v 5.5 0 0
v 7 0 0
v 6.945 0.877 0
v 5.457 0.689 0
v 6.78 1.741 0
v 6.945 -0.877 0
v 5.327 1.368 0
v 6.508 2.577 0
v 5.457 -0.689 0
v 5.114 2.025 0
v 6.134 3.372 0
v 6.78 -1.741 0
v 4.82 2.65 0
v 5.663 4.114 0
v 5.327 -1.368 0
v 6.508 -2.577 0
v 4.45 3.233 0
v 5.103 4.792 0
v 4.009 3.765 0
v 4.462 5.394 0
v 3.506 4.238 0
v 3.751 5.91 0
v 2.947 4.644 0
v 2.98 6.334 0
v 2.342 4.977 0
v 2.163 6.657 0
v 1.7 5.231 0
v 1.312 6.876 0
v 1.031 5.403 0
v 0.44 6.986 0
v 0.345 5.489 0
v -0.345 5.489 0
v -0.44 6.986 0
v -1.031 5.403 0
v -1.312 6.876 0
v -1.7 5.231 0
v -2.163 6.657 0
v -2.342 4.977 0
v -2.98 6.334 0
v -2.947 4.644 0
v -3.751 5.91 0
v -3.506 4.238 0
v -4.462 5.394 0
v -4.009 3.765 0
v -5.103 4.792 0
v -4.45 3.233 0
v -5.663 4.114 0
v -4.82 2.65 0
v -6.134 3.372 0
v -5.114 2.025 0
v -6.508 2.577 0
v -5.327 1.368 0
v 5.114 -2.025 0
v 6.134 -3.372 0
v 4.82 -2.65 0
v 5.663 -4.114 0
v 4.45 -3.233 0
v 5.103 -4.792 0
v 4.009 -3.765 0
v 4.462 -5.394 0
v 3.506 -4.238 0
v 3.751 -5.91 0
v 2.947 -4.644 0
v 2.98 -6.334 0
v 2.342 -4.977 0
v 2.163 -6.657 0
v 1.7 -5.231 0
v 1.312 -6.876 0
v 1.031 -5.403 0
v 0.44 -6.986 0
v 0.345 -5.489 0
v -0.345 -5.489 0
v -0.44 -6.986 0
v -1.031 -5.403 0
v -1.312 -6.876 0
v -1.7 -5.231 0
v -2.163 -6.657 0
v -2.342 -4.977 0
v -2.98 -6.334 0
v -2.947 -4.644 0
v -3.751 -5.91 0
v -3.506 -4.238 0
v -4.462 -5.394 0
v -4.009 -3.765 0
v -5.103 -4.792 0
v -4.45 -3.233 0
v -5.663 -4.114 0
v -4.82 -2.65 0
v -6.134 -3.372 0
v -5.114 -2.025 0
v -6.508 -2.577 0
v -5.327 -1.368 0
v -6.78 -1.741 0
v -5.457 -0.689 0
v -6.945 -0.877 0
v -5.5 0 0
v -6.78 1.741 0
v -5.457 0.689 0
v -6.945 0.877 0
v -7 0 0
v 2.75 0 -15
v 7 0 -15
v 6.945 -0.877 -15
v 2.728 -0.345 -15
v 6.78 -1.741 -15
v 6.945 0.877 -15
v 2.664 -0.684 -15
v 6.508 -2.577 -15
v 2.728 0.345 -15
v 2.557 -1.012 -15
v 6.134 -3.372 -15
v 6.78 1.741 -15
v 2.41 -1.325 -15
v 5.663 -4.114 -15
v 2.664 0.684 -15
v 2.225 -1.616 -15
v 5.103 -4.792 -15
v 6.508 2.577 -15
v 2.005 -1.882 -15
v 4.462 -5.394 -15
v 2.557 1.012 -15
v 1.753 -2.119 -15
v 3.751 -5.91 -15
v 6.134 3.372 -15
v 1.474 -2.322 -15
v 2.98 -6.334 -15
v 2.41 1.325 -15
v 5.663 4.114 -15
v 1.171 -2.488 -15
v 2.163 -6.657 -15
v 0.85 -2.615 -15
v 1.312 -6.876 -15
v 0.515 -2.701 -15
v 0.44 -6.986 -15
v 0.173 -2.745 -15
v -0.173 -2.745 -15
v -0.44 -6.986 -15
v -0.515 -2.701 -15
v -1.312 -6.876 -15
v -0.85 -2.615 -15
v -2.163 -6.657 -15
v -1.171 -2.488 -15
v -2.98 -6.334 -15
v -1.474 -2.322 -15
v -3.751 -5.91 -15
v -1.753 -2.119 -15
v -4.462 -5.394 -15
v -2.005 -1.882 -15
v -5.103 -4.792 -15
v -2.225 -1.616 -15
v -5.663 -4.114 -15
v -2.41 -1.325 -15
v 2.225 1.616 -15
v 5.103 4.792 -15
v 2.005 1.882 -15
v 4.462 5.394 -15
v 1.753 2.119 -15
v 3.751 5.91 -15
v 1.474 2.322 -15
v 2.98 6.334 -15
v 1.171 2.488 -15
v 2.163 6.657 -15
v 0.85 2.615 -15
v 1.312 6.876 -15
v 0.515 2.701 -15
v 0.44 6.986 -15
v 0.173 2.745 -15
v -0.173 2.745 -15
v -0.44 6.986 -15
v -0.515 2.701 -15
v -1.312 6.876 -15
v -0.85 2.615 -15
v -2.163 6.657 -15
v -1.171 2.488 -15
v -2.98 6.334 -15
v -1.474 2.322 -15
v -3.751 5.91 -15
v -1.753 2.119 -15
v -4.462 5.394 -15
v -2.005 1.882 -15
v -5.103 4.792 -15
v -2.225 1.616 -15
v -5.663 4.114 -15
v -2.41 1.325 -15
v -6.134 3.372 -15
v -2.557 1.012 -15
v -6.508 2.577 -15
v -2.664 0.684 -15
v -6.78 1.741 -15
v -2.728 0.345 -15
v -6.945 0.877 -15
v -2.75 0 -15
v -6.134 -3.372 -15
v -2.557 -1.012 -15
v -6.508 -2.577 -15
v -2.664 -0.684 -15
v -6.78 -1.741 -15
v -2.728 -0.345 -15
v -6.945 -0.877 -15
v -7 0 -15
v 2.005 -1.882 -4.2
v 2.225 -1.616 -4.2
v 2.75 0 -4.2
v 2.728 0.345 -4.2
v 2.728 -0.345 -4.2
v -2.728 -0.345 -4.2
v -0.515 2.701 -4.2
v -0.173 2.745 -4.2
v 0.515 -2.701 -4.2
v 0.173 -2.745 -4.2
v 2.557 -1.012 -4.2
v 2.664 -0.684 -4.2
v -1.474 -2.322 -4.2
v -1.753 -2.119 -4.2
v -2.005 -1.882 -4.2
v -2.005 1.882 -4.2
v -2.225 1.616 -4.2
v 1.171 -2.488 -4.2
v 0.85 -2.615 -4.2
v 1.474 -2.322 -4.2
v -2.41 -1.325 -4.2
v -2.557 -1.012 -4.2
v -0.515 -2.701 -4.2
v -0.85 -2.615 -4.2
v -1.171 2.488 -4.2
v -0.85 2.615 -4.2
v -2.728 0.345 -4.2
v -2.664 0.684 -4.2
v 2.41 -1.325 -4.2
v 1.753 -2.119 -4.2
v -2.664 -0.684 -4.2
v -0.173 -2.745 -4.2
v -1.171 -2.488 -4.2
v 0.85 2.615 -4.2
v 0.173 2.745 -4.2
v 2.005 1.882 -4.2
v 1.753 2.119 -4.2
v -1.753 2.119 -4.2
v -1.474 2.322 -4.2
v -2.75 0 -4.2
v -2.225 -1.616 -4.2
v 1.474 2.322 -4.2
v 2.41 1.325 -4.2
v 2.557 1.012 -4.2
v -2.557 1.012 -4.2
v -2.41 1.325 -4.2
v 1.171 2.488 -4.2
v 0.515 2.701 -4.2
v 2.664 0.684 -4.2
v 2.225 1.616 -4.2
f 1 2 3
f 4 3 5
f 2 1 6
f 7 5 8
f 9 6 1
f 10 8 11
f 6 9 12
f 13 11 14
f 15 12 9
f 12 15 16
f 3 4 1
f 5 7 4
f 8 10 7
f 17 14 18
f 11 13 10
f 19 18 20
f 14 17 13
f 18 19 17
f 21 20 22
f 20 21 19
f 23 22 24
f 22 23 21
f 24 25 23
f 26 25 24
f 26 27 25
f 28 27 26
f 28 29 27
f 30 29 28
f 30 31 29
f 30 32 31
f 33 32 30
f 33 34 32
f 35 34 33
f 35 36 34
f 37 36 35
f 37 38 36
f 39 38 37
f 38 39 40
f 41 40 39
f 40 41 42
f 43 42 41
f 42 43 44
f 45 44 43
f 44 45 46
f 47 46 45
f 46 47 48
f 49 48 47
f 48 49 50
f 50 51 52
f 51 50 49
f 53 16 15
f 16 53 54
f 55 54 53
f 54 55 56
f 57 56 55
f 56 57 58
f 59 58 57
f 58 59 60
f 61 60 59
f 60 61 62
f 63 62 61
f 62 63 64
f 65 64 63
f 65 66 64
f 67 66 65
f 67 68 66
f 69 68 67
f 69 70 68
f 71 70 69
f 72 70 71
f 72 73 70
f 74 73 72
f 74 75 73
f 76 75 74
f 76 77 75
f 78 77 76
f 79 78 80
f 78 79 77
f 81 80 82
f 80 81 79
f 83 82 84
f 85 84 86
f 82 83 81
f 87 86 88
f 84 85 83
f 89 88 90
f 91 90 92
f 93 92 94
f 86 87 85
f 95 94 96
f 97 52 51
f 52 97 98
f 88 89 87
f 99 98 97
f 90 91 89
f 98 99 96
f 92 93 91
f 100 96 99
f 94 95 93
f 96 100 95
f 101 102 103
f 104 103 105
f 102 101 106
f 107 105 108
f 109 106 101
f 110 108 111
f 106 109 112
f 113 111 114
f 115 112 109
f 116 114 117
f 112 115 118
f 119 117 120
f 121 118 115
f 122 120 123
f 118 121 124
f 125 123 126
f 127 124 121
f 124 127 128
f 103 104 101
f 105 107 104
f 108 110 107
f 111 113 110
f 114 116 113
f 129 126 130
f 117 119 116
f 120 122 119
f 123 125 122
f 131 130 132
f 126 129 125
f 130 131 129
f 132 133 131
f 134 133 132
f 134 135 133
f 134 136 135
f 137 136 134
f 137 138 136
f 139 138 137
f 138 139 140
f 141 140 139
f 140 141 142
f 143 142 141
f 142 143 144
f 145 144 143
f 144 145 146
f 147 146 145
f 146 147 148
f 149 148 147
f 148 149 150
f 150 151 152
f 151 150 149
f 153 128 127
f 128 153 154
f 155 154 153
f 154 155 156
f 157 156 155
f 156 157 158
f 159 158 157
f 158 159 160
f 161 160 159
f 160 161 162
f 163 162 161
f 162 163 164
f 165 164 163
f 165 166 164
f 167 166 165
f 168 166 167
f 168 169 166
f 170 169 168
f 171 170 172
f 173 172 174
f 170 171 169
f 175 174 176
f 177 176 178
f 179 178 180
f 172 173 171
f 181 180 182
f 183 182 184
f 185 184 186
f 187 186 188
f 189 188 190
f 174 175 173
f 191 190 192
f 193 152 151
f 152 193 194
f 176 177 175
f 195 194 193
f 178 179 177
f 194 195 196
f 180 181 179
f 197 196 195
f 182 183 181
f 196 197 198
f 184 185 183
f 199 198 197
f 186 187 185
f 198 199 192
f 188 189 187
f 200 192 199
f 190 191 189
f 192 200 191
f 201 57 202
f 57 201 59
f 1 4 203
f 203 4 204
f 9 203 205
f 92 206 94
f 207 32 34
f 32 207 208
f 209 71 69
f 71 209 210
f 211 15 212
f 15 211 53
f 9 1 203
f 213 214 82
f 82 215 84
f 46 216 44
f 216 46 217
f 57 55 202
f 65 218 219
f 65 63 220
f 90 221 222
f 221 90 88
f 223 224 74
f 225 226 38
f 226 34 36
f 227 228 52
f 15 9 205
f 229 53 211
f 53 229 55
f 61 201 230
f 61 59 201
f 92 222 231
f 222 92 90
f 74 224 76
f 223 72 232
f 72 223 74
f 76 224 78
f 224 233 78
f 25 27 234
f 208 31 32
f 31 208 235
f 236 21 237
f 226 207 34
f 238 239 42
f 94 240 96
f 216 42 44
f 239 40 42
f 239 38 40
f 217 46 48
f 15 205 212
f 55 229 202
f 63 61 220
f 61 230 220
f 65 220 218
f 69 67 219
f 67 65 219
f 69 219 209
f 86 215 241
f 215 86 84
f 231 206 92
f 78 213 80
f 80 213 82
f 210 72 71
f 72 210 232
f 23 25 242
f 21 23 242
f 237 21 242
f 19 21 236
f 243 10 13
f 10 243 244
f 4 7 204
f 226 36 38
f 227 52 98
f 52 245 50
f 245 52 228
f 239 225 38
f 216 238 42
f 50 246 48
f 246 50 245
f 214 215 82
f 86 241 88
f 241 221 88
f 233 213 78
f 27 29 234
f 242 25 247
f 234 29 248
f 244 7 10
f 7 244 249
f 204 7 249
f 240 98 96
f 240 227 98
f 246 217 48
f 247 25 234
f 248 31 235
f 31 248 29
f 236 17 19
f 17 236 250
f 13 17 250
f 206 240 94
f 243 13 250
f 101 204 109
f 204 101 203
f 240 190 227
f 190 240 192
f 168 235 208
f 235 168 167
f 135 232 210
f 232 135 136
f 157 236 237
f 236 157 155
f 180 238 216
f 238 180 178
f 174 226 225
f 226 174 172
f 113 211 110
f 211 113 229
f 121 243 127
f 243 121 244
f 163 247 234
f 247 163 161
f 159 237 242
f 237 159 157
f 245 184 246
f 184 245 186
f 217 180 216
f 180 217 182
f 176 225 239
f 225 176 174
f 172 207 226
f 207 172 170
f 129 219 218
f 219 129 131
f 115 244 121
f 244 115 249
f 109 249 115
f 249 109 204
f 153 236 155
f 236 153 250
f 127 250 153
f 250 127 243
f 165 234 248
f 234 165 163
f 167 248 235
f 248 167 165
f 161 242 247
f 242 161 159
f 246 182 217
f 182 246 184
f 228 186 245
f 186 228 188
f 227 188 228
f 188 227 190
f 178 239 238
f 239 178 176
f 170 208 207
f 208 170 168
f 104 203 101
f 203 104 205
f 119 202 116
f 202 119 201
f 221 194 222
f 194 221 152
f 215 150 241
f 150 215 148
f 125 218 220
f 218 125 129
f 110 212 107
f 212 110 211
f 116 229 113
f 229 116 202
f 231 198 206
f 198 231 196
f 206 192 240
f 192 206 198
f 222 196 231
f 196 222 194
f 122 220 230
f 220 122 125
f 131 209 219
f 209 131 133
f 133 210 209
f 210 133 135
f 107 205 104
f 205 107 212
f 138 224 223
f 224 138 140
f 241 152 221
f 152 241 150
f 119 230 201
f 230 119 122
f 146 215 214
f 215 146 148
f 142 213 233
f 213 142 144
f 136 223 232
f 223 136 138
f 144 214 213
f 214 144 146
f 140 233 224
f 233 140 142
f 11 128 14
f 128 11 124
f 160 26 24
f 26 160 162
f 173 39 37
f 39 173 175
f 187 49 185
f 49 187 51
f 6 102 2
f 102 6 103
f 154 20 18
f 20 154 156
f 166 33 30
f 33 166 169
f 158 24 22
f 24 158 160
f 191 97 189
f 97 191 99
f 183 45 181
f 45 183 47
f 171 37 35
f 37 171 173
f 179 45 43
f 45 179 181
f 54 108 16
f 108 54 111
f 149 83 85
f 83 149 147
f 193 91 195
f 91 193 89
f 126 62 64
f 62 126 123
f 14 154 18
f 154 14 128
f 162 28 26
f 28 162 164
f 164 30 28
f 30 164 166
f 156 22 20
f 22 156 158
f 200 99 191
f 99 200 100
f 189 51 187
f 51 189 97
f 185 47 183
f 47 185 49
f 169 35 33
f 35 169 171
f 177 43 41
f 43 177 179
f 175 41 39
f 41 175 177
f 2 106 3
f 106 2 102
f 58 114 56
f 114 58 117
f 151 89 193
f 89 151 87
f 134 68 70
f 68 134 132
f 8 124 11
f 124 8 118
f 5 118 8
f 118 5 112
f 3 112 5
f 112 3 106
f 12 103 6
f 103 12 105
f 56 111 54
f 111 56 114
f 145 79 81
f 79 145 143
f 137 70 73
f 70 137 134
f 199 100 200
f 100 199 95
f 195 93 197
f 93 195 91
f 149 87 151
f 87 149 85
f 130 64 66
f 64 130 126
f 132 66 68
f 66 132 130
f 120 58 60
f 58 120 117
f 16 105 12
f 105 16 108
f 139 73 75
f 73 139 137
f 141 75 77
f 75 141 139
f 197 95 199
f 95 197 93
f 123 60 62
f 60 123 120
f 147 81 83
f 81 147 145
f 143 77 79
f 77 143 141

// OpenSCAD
$fn = 50;


difference() {
	union() {
		translate(v = [0, 0, -15.0000000000]) {
			cylinder(h = 15, r = 7.0000000000);
		}
	}
	union() {
		translate(v = [0, 0, 0]) {
			rotate(a = [0, 0, 0]) {
				difference() {
					union() {
						#translate(v = [0, 0, -15.0000000000]) {
							cylinder(h = 15, r = 2.2500000000);
						}
						#translate(v = [0, 0, -4.2000000000]) {
							cylinder(h = 4.2000000000, r1 = 2.7500000000, r2 = 5.5000000000);
						}
						#translate(v = [0, 0, -15.0000000000]) {
							cylinder(h = 15, r = 2.7500000000);
						}
						#translate(v = [0, 0, -15.0000000000]) {
							cylinder(h = 15, r = 2.2500000000);
						}
					}
					union();
				}
			}
		}
	}
}
